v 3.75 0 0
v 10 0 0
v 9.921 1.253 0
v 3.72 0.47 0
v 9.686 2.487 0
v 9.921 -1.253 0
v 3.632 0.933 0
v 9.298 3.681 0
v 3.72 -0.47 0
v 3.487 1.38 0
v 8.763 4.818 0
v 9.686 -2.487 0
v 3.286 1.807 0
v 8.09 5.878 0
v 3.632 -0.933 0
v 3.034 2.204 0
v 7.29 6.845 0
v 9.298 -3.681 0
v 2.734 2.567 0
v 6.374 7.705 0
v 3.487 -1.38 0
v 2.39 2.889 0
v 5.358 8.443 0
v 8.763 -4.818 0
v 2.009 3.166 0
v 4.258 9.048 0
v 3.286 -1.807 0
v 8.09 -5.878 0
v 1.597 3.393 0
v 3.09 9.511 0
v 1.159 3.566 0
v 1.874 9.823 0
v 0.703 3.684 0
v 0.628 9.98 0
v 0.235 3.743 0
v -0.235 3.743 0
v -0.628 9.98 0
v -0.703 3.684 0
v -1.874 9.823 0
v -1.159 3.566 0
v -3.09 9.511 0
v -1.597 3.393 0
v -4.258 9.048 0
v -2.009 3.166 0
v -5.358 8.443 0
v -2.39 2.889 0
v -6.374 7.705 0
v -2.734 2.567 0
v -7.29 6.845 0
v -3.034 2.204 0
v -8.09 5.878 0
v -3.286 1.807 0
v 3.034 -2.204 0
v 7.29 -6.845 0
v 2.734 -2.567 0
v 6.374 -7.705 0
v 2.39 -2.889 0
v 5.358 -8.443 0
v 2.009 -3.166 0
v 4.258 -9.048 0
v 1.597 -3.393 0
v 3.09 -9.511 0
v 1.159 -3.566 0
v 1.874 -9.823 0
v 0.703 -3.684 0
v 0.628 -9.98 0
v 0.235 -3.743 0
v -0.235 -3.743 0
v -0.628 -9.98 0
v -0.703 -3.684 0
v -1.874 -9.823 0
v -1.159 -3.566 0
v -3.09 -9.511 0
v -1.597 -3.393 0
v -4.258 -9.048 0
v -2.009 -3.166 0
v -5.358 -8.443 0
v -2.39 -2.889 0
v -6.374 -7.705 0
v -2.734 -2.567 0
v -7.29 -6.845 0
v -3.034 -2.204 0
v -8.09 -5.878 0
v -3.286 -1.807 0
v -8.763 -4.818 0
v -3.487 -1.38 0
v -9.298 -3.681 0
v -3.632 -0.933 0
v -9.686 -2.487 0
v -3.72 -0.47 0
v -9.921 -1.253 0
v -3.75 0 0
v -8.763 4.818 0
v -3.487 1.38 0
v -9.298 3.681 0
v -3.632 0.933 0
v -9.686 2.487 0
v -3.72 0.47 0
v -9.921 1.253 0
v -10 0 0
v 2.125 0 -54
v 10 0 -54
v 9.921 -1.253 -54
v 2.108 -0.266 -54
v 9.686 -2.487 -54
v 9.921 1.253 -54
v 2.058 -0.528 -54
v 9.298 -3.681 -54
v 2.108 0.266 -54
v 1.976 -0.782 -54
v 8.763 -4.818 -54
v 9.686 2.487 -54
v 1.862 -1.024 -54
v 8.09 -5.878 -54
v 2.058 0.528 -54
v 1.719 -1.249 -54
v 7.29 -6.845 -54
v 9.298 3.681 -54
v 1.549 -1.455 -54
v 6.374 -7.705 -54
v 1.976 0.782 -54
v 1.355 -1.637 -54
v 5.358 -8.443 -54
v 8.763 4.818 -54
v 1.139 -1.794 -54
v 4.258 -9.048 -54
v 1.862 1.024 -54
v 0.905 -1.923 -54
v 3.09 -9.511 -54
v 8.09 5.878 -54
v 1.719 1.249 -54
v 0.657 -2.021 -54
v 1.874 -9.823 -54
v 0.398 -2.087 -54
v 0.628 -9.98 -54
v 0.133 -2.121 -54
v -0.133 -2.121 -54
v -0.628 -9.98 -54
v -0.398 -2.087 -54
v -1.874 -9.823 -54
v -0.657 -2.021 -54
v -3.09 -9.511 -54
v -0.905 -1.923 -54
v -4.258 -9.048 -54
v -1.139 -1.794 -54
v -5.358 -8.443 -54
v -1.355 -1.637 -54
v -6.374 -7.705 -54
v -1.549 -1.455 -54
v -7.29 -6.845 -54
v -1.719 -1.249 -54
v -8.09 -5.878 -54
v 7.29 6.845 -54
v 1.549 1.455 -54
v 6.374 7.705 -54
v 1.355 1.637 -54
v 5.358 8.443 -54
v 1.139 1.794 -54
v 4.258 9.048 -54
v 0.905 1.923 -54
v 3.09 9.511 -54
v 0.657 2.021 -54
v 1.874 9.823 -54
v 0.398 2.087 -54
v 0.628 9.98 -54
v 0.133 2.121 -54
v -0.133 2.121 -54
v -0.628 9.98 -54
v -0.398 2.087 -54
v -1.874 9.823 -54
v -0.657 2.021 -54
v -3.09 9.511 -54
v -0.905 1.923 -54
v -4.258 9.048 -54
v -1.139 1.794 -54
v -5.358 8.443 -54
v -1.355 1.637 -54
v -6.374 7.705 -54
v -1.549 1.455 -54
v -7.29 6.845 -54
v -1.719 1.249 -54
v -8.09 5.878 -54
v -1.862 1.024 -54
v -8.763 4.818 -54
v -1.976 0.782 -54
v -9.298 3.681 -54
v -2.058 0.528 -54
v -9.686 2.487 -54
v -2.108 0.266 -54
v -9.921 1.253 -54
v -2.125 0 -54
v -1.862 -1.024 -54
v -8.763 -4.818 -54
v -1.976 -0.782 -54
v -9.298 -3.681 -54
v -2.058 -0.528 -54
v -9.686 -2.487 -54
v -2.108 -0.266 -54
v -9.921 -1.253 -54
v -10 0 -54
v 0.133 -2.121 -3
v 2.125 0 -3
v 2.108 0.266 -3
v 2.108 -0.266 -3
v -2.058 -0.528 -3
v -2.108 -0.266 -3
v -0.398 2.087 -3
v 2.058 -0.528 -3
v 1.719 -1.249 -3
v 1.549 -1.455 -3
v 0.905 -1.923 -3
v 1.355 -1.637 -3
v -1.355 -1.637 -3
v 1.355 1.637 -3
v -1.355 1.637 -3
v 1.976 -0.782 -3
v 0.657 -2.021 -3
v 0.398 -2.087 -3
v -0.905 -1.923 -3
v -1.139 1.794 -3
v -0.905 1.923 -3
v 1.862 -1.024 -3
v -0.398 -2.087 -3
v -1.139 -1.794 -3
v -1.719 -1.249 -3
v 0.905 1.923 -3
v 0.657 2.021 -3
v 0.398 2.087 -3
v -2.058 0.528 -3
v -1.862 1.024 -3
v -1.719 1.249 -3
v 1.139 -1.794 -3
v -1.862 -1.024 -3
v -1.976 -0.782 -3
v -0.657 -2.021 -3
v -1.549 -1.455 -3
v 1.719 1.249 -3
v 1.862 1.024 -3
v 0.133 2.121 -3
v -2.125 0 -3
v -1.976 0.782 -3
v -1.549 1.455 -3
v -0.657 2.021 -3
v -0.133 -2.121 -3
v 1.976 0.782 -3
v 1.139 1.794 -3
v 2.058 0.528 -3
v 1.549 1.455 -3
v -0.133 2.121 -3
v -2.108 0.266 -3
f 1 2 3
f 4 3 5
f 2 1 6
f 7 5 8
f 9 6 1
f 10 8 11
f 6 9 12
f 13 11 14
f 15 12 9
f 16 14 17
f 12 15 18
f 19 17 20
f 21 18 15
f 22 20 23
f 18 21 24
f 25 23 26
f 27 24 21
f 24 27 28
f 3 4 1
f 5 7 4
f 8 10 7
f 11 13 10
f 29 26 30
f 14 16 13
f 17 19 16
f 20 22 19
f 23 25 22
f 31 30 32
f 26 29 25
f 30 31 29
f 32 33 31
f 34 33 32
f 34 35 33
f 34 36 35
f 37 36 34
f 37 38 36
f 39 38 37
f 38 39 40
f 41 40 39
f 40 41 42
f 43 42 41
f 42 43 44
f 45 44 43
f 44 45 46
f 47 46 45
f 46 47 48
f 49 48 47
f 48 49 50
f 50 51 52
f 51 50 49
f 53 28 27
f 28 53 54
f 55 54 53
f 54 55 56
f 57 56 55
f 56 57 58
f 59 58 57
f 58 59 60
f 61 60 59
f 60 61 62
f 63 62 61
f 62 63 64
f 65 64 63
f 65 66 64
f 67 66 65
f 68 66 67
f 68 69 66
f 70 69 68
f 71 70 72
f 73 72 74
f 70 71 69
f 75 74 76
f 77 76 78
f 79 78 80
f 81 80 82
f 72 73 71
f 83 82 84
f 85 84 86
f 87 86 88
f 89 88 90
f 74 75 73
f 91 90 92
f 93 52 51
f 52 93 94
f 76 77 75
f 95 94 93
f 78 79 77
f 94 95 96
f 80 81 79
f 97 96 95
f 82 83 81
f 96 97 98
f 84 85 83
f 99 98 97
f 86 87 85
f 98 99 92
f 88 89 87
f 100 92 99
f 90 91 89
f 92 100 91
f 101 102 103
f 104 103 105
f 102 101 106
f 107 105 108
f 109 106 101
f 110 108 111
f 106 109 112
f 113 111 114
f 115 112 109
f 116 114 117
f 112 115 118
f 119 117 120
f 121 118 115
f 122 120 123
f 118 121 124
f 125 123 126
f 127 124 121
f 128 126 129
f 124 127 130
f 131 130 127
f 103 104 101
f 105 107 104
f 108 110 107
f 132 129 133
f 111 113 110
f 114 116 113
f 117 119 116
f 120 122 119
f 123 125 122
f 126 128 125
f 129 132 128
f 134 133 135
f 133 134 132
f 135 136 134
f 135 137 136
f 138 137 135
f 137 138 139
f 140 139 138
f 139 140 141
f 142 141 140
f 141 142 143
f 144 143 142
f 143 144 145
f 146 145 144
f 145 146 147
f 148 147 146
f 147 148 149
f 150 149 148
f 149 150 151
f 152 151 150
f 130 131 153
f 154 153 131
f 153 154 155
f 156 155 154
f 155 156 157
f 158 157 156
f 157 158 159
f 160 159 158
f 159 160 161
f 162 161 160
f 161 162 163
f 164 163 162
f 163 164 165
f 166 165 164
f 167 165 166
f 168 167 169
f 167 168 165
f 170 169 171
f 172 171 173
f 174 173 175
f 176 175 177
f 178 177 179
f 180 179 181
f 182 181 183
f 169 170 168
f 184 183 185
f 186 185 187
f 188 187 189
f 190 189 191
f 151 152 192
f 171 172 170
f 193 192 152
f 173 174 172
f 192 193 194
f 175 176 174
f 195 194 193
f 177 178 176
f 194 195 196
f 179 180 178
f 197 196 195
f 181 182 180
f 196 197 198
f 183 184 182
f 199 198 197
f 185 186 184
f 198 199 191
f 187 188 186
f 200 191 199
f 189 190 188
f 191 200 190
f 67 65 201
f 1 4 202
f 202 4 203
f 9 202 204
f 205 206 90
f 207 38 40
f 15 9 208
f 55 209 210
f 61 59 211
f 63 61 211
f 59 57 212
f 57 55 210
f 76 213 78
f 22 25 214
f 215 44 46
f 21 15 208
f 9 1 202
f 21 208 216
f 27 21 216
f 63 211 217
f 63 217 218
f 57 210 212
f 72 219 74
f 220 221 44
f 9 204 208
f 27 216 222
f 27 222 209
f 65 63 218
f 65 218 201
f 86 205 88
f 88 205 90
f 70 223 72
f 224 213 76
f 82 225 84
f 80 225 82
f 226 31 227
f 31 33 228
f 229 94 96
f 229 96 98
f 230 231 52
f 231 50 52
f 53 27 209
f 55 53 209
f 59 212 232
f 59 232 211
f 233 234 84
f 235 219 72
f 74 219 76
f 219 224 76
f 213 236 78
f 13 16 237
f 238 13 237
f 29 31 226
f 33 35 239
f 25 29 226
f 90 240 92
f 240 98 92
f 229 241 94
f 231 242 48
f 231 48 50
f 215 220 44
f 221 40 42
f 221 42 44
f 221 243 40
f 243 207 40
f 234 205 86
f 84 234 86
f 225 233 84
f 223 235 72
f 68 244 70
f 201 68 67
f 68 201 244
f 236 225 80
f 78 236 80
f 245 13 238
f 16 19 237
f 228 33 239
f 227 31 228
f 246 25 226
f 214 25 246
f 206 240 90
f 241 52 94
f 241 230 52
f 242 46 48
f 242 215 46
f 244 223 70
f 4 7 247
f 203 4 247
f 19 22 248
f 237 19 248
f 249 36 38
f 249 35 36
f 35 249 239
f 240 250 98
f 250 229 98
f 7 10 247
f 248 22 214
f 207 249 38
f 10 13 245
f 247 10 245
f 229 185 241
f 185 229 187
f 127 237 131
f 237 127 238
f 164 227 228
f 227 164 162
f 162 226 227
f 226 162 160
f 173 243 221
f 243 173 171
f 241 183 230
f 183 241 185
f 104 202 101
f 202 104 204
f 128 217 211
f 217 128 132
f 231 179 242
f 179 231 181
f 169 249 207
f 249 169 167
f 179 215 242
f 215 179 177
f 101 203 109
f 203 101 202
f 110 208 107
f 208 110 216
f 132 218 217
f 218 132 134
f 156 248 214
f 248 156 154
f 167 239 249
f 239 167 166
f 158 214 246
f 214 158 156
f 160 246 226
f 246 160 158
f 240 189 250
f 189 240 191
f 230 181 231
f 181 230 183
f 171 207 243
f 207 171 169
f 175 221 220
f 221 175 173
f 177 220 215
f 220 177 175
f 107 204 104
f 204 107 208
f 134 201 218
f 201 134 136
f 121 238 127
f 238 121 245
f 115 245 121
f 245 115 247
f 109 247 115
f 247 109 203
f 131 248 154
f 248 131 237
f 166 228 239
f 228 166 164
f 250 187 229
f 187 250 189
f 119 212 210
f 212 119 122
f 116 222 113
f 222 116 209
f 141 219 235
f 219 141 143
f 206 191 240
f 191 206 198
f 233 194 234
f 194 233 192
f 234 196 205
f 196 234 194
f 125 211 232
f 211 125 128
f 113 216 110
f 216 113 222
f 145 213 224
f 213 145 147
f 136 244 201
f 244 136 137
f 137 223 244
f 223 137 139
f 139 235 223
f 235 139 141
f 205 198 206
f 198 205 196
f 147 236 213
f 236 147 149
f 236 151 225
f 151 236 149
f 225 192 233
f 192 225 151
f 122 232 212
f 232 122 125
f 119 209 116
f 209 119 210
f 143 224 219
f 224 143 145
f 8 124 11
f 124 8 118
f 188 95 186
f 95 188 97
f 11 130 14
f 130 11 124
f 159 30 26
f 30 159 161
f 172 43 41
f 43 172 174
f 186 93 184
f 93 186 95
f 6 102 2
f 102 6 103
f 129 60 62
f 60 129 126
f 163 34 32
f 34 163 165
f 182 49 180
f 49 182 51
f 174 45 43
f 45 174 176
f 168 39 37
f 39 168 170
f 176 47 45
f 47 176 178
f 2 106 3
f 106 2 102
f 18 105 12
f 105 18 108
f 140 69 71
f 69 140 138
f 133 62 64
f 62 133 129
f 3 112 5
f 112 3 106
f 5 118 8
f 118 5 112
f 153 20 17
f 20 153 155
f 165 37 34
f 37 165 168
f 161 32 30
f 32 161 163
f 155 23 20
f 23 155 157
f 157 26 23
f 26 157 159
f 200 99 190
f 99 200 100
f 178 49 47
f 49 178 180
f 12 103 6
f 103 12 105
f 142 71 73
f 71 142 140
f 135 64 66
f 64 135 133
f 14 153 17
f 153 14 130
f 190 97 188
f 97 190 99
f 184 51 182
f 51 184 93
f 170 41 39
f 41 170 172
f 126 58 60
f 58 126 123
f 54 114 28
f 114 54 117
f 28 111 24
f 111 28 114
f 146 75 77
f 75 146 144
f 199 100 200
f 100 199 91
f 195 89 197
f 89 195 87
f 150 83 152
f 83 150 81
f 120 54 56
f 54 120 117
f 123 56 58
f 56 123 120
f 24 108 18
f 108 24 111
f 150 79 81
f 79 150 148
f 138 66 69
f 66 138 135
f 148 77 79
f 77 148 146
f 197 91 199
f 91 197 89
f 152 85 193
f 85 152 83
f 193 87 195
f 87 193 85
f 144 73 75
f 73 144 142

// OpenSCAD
$fn = 50;


difference() {
	union() {
		translate(v = [0, 0, -54.0000000000]) {
			cylinder(h = 54, r = 10.0000000000);
		}
		cylinder(h = 0, r = 19.0000000000);
	}
	union() {
		translate(v = [0, 0, 0]) {
			rotate(a = [0, 0, 0]) {
				difference() {
					union() {
						#translate(v = [0, 0, -54.0000000000]) {
							cylinder(h = 54, r = 2.0000000000);
						}
						#translate(v = [0, 0, -3]) {
							cylinder(h = 3, r1 = 2.1250000000, r2 = 3.7500000000);
						}
						#translate(v = [0, 0, -54.0000000000]) {
							cylinder(h = 54, r = 2.1250000000);
						}
						#translate(v = [0, 0, -54.0000000000]) {
							cylinder(h = 54, r = 2.0000000000);
						}
					}
					union();
				}
			}
		}
	}
}
